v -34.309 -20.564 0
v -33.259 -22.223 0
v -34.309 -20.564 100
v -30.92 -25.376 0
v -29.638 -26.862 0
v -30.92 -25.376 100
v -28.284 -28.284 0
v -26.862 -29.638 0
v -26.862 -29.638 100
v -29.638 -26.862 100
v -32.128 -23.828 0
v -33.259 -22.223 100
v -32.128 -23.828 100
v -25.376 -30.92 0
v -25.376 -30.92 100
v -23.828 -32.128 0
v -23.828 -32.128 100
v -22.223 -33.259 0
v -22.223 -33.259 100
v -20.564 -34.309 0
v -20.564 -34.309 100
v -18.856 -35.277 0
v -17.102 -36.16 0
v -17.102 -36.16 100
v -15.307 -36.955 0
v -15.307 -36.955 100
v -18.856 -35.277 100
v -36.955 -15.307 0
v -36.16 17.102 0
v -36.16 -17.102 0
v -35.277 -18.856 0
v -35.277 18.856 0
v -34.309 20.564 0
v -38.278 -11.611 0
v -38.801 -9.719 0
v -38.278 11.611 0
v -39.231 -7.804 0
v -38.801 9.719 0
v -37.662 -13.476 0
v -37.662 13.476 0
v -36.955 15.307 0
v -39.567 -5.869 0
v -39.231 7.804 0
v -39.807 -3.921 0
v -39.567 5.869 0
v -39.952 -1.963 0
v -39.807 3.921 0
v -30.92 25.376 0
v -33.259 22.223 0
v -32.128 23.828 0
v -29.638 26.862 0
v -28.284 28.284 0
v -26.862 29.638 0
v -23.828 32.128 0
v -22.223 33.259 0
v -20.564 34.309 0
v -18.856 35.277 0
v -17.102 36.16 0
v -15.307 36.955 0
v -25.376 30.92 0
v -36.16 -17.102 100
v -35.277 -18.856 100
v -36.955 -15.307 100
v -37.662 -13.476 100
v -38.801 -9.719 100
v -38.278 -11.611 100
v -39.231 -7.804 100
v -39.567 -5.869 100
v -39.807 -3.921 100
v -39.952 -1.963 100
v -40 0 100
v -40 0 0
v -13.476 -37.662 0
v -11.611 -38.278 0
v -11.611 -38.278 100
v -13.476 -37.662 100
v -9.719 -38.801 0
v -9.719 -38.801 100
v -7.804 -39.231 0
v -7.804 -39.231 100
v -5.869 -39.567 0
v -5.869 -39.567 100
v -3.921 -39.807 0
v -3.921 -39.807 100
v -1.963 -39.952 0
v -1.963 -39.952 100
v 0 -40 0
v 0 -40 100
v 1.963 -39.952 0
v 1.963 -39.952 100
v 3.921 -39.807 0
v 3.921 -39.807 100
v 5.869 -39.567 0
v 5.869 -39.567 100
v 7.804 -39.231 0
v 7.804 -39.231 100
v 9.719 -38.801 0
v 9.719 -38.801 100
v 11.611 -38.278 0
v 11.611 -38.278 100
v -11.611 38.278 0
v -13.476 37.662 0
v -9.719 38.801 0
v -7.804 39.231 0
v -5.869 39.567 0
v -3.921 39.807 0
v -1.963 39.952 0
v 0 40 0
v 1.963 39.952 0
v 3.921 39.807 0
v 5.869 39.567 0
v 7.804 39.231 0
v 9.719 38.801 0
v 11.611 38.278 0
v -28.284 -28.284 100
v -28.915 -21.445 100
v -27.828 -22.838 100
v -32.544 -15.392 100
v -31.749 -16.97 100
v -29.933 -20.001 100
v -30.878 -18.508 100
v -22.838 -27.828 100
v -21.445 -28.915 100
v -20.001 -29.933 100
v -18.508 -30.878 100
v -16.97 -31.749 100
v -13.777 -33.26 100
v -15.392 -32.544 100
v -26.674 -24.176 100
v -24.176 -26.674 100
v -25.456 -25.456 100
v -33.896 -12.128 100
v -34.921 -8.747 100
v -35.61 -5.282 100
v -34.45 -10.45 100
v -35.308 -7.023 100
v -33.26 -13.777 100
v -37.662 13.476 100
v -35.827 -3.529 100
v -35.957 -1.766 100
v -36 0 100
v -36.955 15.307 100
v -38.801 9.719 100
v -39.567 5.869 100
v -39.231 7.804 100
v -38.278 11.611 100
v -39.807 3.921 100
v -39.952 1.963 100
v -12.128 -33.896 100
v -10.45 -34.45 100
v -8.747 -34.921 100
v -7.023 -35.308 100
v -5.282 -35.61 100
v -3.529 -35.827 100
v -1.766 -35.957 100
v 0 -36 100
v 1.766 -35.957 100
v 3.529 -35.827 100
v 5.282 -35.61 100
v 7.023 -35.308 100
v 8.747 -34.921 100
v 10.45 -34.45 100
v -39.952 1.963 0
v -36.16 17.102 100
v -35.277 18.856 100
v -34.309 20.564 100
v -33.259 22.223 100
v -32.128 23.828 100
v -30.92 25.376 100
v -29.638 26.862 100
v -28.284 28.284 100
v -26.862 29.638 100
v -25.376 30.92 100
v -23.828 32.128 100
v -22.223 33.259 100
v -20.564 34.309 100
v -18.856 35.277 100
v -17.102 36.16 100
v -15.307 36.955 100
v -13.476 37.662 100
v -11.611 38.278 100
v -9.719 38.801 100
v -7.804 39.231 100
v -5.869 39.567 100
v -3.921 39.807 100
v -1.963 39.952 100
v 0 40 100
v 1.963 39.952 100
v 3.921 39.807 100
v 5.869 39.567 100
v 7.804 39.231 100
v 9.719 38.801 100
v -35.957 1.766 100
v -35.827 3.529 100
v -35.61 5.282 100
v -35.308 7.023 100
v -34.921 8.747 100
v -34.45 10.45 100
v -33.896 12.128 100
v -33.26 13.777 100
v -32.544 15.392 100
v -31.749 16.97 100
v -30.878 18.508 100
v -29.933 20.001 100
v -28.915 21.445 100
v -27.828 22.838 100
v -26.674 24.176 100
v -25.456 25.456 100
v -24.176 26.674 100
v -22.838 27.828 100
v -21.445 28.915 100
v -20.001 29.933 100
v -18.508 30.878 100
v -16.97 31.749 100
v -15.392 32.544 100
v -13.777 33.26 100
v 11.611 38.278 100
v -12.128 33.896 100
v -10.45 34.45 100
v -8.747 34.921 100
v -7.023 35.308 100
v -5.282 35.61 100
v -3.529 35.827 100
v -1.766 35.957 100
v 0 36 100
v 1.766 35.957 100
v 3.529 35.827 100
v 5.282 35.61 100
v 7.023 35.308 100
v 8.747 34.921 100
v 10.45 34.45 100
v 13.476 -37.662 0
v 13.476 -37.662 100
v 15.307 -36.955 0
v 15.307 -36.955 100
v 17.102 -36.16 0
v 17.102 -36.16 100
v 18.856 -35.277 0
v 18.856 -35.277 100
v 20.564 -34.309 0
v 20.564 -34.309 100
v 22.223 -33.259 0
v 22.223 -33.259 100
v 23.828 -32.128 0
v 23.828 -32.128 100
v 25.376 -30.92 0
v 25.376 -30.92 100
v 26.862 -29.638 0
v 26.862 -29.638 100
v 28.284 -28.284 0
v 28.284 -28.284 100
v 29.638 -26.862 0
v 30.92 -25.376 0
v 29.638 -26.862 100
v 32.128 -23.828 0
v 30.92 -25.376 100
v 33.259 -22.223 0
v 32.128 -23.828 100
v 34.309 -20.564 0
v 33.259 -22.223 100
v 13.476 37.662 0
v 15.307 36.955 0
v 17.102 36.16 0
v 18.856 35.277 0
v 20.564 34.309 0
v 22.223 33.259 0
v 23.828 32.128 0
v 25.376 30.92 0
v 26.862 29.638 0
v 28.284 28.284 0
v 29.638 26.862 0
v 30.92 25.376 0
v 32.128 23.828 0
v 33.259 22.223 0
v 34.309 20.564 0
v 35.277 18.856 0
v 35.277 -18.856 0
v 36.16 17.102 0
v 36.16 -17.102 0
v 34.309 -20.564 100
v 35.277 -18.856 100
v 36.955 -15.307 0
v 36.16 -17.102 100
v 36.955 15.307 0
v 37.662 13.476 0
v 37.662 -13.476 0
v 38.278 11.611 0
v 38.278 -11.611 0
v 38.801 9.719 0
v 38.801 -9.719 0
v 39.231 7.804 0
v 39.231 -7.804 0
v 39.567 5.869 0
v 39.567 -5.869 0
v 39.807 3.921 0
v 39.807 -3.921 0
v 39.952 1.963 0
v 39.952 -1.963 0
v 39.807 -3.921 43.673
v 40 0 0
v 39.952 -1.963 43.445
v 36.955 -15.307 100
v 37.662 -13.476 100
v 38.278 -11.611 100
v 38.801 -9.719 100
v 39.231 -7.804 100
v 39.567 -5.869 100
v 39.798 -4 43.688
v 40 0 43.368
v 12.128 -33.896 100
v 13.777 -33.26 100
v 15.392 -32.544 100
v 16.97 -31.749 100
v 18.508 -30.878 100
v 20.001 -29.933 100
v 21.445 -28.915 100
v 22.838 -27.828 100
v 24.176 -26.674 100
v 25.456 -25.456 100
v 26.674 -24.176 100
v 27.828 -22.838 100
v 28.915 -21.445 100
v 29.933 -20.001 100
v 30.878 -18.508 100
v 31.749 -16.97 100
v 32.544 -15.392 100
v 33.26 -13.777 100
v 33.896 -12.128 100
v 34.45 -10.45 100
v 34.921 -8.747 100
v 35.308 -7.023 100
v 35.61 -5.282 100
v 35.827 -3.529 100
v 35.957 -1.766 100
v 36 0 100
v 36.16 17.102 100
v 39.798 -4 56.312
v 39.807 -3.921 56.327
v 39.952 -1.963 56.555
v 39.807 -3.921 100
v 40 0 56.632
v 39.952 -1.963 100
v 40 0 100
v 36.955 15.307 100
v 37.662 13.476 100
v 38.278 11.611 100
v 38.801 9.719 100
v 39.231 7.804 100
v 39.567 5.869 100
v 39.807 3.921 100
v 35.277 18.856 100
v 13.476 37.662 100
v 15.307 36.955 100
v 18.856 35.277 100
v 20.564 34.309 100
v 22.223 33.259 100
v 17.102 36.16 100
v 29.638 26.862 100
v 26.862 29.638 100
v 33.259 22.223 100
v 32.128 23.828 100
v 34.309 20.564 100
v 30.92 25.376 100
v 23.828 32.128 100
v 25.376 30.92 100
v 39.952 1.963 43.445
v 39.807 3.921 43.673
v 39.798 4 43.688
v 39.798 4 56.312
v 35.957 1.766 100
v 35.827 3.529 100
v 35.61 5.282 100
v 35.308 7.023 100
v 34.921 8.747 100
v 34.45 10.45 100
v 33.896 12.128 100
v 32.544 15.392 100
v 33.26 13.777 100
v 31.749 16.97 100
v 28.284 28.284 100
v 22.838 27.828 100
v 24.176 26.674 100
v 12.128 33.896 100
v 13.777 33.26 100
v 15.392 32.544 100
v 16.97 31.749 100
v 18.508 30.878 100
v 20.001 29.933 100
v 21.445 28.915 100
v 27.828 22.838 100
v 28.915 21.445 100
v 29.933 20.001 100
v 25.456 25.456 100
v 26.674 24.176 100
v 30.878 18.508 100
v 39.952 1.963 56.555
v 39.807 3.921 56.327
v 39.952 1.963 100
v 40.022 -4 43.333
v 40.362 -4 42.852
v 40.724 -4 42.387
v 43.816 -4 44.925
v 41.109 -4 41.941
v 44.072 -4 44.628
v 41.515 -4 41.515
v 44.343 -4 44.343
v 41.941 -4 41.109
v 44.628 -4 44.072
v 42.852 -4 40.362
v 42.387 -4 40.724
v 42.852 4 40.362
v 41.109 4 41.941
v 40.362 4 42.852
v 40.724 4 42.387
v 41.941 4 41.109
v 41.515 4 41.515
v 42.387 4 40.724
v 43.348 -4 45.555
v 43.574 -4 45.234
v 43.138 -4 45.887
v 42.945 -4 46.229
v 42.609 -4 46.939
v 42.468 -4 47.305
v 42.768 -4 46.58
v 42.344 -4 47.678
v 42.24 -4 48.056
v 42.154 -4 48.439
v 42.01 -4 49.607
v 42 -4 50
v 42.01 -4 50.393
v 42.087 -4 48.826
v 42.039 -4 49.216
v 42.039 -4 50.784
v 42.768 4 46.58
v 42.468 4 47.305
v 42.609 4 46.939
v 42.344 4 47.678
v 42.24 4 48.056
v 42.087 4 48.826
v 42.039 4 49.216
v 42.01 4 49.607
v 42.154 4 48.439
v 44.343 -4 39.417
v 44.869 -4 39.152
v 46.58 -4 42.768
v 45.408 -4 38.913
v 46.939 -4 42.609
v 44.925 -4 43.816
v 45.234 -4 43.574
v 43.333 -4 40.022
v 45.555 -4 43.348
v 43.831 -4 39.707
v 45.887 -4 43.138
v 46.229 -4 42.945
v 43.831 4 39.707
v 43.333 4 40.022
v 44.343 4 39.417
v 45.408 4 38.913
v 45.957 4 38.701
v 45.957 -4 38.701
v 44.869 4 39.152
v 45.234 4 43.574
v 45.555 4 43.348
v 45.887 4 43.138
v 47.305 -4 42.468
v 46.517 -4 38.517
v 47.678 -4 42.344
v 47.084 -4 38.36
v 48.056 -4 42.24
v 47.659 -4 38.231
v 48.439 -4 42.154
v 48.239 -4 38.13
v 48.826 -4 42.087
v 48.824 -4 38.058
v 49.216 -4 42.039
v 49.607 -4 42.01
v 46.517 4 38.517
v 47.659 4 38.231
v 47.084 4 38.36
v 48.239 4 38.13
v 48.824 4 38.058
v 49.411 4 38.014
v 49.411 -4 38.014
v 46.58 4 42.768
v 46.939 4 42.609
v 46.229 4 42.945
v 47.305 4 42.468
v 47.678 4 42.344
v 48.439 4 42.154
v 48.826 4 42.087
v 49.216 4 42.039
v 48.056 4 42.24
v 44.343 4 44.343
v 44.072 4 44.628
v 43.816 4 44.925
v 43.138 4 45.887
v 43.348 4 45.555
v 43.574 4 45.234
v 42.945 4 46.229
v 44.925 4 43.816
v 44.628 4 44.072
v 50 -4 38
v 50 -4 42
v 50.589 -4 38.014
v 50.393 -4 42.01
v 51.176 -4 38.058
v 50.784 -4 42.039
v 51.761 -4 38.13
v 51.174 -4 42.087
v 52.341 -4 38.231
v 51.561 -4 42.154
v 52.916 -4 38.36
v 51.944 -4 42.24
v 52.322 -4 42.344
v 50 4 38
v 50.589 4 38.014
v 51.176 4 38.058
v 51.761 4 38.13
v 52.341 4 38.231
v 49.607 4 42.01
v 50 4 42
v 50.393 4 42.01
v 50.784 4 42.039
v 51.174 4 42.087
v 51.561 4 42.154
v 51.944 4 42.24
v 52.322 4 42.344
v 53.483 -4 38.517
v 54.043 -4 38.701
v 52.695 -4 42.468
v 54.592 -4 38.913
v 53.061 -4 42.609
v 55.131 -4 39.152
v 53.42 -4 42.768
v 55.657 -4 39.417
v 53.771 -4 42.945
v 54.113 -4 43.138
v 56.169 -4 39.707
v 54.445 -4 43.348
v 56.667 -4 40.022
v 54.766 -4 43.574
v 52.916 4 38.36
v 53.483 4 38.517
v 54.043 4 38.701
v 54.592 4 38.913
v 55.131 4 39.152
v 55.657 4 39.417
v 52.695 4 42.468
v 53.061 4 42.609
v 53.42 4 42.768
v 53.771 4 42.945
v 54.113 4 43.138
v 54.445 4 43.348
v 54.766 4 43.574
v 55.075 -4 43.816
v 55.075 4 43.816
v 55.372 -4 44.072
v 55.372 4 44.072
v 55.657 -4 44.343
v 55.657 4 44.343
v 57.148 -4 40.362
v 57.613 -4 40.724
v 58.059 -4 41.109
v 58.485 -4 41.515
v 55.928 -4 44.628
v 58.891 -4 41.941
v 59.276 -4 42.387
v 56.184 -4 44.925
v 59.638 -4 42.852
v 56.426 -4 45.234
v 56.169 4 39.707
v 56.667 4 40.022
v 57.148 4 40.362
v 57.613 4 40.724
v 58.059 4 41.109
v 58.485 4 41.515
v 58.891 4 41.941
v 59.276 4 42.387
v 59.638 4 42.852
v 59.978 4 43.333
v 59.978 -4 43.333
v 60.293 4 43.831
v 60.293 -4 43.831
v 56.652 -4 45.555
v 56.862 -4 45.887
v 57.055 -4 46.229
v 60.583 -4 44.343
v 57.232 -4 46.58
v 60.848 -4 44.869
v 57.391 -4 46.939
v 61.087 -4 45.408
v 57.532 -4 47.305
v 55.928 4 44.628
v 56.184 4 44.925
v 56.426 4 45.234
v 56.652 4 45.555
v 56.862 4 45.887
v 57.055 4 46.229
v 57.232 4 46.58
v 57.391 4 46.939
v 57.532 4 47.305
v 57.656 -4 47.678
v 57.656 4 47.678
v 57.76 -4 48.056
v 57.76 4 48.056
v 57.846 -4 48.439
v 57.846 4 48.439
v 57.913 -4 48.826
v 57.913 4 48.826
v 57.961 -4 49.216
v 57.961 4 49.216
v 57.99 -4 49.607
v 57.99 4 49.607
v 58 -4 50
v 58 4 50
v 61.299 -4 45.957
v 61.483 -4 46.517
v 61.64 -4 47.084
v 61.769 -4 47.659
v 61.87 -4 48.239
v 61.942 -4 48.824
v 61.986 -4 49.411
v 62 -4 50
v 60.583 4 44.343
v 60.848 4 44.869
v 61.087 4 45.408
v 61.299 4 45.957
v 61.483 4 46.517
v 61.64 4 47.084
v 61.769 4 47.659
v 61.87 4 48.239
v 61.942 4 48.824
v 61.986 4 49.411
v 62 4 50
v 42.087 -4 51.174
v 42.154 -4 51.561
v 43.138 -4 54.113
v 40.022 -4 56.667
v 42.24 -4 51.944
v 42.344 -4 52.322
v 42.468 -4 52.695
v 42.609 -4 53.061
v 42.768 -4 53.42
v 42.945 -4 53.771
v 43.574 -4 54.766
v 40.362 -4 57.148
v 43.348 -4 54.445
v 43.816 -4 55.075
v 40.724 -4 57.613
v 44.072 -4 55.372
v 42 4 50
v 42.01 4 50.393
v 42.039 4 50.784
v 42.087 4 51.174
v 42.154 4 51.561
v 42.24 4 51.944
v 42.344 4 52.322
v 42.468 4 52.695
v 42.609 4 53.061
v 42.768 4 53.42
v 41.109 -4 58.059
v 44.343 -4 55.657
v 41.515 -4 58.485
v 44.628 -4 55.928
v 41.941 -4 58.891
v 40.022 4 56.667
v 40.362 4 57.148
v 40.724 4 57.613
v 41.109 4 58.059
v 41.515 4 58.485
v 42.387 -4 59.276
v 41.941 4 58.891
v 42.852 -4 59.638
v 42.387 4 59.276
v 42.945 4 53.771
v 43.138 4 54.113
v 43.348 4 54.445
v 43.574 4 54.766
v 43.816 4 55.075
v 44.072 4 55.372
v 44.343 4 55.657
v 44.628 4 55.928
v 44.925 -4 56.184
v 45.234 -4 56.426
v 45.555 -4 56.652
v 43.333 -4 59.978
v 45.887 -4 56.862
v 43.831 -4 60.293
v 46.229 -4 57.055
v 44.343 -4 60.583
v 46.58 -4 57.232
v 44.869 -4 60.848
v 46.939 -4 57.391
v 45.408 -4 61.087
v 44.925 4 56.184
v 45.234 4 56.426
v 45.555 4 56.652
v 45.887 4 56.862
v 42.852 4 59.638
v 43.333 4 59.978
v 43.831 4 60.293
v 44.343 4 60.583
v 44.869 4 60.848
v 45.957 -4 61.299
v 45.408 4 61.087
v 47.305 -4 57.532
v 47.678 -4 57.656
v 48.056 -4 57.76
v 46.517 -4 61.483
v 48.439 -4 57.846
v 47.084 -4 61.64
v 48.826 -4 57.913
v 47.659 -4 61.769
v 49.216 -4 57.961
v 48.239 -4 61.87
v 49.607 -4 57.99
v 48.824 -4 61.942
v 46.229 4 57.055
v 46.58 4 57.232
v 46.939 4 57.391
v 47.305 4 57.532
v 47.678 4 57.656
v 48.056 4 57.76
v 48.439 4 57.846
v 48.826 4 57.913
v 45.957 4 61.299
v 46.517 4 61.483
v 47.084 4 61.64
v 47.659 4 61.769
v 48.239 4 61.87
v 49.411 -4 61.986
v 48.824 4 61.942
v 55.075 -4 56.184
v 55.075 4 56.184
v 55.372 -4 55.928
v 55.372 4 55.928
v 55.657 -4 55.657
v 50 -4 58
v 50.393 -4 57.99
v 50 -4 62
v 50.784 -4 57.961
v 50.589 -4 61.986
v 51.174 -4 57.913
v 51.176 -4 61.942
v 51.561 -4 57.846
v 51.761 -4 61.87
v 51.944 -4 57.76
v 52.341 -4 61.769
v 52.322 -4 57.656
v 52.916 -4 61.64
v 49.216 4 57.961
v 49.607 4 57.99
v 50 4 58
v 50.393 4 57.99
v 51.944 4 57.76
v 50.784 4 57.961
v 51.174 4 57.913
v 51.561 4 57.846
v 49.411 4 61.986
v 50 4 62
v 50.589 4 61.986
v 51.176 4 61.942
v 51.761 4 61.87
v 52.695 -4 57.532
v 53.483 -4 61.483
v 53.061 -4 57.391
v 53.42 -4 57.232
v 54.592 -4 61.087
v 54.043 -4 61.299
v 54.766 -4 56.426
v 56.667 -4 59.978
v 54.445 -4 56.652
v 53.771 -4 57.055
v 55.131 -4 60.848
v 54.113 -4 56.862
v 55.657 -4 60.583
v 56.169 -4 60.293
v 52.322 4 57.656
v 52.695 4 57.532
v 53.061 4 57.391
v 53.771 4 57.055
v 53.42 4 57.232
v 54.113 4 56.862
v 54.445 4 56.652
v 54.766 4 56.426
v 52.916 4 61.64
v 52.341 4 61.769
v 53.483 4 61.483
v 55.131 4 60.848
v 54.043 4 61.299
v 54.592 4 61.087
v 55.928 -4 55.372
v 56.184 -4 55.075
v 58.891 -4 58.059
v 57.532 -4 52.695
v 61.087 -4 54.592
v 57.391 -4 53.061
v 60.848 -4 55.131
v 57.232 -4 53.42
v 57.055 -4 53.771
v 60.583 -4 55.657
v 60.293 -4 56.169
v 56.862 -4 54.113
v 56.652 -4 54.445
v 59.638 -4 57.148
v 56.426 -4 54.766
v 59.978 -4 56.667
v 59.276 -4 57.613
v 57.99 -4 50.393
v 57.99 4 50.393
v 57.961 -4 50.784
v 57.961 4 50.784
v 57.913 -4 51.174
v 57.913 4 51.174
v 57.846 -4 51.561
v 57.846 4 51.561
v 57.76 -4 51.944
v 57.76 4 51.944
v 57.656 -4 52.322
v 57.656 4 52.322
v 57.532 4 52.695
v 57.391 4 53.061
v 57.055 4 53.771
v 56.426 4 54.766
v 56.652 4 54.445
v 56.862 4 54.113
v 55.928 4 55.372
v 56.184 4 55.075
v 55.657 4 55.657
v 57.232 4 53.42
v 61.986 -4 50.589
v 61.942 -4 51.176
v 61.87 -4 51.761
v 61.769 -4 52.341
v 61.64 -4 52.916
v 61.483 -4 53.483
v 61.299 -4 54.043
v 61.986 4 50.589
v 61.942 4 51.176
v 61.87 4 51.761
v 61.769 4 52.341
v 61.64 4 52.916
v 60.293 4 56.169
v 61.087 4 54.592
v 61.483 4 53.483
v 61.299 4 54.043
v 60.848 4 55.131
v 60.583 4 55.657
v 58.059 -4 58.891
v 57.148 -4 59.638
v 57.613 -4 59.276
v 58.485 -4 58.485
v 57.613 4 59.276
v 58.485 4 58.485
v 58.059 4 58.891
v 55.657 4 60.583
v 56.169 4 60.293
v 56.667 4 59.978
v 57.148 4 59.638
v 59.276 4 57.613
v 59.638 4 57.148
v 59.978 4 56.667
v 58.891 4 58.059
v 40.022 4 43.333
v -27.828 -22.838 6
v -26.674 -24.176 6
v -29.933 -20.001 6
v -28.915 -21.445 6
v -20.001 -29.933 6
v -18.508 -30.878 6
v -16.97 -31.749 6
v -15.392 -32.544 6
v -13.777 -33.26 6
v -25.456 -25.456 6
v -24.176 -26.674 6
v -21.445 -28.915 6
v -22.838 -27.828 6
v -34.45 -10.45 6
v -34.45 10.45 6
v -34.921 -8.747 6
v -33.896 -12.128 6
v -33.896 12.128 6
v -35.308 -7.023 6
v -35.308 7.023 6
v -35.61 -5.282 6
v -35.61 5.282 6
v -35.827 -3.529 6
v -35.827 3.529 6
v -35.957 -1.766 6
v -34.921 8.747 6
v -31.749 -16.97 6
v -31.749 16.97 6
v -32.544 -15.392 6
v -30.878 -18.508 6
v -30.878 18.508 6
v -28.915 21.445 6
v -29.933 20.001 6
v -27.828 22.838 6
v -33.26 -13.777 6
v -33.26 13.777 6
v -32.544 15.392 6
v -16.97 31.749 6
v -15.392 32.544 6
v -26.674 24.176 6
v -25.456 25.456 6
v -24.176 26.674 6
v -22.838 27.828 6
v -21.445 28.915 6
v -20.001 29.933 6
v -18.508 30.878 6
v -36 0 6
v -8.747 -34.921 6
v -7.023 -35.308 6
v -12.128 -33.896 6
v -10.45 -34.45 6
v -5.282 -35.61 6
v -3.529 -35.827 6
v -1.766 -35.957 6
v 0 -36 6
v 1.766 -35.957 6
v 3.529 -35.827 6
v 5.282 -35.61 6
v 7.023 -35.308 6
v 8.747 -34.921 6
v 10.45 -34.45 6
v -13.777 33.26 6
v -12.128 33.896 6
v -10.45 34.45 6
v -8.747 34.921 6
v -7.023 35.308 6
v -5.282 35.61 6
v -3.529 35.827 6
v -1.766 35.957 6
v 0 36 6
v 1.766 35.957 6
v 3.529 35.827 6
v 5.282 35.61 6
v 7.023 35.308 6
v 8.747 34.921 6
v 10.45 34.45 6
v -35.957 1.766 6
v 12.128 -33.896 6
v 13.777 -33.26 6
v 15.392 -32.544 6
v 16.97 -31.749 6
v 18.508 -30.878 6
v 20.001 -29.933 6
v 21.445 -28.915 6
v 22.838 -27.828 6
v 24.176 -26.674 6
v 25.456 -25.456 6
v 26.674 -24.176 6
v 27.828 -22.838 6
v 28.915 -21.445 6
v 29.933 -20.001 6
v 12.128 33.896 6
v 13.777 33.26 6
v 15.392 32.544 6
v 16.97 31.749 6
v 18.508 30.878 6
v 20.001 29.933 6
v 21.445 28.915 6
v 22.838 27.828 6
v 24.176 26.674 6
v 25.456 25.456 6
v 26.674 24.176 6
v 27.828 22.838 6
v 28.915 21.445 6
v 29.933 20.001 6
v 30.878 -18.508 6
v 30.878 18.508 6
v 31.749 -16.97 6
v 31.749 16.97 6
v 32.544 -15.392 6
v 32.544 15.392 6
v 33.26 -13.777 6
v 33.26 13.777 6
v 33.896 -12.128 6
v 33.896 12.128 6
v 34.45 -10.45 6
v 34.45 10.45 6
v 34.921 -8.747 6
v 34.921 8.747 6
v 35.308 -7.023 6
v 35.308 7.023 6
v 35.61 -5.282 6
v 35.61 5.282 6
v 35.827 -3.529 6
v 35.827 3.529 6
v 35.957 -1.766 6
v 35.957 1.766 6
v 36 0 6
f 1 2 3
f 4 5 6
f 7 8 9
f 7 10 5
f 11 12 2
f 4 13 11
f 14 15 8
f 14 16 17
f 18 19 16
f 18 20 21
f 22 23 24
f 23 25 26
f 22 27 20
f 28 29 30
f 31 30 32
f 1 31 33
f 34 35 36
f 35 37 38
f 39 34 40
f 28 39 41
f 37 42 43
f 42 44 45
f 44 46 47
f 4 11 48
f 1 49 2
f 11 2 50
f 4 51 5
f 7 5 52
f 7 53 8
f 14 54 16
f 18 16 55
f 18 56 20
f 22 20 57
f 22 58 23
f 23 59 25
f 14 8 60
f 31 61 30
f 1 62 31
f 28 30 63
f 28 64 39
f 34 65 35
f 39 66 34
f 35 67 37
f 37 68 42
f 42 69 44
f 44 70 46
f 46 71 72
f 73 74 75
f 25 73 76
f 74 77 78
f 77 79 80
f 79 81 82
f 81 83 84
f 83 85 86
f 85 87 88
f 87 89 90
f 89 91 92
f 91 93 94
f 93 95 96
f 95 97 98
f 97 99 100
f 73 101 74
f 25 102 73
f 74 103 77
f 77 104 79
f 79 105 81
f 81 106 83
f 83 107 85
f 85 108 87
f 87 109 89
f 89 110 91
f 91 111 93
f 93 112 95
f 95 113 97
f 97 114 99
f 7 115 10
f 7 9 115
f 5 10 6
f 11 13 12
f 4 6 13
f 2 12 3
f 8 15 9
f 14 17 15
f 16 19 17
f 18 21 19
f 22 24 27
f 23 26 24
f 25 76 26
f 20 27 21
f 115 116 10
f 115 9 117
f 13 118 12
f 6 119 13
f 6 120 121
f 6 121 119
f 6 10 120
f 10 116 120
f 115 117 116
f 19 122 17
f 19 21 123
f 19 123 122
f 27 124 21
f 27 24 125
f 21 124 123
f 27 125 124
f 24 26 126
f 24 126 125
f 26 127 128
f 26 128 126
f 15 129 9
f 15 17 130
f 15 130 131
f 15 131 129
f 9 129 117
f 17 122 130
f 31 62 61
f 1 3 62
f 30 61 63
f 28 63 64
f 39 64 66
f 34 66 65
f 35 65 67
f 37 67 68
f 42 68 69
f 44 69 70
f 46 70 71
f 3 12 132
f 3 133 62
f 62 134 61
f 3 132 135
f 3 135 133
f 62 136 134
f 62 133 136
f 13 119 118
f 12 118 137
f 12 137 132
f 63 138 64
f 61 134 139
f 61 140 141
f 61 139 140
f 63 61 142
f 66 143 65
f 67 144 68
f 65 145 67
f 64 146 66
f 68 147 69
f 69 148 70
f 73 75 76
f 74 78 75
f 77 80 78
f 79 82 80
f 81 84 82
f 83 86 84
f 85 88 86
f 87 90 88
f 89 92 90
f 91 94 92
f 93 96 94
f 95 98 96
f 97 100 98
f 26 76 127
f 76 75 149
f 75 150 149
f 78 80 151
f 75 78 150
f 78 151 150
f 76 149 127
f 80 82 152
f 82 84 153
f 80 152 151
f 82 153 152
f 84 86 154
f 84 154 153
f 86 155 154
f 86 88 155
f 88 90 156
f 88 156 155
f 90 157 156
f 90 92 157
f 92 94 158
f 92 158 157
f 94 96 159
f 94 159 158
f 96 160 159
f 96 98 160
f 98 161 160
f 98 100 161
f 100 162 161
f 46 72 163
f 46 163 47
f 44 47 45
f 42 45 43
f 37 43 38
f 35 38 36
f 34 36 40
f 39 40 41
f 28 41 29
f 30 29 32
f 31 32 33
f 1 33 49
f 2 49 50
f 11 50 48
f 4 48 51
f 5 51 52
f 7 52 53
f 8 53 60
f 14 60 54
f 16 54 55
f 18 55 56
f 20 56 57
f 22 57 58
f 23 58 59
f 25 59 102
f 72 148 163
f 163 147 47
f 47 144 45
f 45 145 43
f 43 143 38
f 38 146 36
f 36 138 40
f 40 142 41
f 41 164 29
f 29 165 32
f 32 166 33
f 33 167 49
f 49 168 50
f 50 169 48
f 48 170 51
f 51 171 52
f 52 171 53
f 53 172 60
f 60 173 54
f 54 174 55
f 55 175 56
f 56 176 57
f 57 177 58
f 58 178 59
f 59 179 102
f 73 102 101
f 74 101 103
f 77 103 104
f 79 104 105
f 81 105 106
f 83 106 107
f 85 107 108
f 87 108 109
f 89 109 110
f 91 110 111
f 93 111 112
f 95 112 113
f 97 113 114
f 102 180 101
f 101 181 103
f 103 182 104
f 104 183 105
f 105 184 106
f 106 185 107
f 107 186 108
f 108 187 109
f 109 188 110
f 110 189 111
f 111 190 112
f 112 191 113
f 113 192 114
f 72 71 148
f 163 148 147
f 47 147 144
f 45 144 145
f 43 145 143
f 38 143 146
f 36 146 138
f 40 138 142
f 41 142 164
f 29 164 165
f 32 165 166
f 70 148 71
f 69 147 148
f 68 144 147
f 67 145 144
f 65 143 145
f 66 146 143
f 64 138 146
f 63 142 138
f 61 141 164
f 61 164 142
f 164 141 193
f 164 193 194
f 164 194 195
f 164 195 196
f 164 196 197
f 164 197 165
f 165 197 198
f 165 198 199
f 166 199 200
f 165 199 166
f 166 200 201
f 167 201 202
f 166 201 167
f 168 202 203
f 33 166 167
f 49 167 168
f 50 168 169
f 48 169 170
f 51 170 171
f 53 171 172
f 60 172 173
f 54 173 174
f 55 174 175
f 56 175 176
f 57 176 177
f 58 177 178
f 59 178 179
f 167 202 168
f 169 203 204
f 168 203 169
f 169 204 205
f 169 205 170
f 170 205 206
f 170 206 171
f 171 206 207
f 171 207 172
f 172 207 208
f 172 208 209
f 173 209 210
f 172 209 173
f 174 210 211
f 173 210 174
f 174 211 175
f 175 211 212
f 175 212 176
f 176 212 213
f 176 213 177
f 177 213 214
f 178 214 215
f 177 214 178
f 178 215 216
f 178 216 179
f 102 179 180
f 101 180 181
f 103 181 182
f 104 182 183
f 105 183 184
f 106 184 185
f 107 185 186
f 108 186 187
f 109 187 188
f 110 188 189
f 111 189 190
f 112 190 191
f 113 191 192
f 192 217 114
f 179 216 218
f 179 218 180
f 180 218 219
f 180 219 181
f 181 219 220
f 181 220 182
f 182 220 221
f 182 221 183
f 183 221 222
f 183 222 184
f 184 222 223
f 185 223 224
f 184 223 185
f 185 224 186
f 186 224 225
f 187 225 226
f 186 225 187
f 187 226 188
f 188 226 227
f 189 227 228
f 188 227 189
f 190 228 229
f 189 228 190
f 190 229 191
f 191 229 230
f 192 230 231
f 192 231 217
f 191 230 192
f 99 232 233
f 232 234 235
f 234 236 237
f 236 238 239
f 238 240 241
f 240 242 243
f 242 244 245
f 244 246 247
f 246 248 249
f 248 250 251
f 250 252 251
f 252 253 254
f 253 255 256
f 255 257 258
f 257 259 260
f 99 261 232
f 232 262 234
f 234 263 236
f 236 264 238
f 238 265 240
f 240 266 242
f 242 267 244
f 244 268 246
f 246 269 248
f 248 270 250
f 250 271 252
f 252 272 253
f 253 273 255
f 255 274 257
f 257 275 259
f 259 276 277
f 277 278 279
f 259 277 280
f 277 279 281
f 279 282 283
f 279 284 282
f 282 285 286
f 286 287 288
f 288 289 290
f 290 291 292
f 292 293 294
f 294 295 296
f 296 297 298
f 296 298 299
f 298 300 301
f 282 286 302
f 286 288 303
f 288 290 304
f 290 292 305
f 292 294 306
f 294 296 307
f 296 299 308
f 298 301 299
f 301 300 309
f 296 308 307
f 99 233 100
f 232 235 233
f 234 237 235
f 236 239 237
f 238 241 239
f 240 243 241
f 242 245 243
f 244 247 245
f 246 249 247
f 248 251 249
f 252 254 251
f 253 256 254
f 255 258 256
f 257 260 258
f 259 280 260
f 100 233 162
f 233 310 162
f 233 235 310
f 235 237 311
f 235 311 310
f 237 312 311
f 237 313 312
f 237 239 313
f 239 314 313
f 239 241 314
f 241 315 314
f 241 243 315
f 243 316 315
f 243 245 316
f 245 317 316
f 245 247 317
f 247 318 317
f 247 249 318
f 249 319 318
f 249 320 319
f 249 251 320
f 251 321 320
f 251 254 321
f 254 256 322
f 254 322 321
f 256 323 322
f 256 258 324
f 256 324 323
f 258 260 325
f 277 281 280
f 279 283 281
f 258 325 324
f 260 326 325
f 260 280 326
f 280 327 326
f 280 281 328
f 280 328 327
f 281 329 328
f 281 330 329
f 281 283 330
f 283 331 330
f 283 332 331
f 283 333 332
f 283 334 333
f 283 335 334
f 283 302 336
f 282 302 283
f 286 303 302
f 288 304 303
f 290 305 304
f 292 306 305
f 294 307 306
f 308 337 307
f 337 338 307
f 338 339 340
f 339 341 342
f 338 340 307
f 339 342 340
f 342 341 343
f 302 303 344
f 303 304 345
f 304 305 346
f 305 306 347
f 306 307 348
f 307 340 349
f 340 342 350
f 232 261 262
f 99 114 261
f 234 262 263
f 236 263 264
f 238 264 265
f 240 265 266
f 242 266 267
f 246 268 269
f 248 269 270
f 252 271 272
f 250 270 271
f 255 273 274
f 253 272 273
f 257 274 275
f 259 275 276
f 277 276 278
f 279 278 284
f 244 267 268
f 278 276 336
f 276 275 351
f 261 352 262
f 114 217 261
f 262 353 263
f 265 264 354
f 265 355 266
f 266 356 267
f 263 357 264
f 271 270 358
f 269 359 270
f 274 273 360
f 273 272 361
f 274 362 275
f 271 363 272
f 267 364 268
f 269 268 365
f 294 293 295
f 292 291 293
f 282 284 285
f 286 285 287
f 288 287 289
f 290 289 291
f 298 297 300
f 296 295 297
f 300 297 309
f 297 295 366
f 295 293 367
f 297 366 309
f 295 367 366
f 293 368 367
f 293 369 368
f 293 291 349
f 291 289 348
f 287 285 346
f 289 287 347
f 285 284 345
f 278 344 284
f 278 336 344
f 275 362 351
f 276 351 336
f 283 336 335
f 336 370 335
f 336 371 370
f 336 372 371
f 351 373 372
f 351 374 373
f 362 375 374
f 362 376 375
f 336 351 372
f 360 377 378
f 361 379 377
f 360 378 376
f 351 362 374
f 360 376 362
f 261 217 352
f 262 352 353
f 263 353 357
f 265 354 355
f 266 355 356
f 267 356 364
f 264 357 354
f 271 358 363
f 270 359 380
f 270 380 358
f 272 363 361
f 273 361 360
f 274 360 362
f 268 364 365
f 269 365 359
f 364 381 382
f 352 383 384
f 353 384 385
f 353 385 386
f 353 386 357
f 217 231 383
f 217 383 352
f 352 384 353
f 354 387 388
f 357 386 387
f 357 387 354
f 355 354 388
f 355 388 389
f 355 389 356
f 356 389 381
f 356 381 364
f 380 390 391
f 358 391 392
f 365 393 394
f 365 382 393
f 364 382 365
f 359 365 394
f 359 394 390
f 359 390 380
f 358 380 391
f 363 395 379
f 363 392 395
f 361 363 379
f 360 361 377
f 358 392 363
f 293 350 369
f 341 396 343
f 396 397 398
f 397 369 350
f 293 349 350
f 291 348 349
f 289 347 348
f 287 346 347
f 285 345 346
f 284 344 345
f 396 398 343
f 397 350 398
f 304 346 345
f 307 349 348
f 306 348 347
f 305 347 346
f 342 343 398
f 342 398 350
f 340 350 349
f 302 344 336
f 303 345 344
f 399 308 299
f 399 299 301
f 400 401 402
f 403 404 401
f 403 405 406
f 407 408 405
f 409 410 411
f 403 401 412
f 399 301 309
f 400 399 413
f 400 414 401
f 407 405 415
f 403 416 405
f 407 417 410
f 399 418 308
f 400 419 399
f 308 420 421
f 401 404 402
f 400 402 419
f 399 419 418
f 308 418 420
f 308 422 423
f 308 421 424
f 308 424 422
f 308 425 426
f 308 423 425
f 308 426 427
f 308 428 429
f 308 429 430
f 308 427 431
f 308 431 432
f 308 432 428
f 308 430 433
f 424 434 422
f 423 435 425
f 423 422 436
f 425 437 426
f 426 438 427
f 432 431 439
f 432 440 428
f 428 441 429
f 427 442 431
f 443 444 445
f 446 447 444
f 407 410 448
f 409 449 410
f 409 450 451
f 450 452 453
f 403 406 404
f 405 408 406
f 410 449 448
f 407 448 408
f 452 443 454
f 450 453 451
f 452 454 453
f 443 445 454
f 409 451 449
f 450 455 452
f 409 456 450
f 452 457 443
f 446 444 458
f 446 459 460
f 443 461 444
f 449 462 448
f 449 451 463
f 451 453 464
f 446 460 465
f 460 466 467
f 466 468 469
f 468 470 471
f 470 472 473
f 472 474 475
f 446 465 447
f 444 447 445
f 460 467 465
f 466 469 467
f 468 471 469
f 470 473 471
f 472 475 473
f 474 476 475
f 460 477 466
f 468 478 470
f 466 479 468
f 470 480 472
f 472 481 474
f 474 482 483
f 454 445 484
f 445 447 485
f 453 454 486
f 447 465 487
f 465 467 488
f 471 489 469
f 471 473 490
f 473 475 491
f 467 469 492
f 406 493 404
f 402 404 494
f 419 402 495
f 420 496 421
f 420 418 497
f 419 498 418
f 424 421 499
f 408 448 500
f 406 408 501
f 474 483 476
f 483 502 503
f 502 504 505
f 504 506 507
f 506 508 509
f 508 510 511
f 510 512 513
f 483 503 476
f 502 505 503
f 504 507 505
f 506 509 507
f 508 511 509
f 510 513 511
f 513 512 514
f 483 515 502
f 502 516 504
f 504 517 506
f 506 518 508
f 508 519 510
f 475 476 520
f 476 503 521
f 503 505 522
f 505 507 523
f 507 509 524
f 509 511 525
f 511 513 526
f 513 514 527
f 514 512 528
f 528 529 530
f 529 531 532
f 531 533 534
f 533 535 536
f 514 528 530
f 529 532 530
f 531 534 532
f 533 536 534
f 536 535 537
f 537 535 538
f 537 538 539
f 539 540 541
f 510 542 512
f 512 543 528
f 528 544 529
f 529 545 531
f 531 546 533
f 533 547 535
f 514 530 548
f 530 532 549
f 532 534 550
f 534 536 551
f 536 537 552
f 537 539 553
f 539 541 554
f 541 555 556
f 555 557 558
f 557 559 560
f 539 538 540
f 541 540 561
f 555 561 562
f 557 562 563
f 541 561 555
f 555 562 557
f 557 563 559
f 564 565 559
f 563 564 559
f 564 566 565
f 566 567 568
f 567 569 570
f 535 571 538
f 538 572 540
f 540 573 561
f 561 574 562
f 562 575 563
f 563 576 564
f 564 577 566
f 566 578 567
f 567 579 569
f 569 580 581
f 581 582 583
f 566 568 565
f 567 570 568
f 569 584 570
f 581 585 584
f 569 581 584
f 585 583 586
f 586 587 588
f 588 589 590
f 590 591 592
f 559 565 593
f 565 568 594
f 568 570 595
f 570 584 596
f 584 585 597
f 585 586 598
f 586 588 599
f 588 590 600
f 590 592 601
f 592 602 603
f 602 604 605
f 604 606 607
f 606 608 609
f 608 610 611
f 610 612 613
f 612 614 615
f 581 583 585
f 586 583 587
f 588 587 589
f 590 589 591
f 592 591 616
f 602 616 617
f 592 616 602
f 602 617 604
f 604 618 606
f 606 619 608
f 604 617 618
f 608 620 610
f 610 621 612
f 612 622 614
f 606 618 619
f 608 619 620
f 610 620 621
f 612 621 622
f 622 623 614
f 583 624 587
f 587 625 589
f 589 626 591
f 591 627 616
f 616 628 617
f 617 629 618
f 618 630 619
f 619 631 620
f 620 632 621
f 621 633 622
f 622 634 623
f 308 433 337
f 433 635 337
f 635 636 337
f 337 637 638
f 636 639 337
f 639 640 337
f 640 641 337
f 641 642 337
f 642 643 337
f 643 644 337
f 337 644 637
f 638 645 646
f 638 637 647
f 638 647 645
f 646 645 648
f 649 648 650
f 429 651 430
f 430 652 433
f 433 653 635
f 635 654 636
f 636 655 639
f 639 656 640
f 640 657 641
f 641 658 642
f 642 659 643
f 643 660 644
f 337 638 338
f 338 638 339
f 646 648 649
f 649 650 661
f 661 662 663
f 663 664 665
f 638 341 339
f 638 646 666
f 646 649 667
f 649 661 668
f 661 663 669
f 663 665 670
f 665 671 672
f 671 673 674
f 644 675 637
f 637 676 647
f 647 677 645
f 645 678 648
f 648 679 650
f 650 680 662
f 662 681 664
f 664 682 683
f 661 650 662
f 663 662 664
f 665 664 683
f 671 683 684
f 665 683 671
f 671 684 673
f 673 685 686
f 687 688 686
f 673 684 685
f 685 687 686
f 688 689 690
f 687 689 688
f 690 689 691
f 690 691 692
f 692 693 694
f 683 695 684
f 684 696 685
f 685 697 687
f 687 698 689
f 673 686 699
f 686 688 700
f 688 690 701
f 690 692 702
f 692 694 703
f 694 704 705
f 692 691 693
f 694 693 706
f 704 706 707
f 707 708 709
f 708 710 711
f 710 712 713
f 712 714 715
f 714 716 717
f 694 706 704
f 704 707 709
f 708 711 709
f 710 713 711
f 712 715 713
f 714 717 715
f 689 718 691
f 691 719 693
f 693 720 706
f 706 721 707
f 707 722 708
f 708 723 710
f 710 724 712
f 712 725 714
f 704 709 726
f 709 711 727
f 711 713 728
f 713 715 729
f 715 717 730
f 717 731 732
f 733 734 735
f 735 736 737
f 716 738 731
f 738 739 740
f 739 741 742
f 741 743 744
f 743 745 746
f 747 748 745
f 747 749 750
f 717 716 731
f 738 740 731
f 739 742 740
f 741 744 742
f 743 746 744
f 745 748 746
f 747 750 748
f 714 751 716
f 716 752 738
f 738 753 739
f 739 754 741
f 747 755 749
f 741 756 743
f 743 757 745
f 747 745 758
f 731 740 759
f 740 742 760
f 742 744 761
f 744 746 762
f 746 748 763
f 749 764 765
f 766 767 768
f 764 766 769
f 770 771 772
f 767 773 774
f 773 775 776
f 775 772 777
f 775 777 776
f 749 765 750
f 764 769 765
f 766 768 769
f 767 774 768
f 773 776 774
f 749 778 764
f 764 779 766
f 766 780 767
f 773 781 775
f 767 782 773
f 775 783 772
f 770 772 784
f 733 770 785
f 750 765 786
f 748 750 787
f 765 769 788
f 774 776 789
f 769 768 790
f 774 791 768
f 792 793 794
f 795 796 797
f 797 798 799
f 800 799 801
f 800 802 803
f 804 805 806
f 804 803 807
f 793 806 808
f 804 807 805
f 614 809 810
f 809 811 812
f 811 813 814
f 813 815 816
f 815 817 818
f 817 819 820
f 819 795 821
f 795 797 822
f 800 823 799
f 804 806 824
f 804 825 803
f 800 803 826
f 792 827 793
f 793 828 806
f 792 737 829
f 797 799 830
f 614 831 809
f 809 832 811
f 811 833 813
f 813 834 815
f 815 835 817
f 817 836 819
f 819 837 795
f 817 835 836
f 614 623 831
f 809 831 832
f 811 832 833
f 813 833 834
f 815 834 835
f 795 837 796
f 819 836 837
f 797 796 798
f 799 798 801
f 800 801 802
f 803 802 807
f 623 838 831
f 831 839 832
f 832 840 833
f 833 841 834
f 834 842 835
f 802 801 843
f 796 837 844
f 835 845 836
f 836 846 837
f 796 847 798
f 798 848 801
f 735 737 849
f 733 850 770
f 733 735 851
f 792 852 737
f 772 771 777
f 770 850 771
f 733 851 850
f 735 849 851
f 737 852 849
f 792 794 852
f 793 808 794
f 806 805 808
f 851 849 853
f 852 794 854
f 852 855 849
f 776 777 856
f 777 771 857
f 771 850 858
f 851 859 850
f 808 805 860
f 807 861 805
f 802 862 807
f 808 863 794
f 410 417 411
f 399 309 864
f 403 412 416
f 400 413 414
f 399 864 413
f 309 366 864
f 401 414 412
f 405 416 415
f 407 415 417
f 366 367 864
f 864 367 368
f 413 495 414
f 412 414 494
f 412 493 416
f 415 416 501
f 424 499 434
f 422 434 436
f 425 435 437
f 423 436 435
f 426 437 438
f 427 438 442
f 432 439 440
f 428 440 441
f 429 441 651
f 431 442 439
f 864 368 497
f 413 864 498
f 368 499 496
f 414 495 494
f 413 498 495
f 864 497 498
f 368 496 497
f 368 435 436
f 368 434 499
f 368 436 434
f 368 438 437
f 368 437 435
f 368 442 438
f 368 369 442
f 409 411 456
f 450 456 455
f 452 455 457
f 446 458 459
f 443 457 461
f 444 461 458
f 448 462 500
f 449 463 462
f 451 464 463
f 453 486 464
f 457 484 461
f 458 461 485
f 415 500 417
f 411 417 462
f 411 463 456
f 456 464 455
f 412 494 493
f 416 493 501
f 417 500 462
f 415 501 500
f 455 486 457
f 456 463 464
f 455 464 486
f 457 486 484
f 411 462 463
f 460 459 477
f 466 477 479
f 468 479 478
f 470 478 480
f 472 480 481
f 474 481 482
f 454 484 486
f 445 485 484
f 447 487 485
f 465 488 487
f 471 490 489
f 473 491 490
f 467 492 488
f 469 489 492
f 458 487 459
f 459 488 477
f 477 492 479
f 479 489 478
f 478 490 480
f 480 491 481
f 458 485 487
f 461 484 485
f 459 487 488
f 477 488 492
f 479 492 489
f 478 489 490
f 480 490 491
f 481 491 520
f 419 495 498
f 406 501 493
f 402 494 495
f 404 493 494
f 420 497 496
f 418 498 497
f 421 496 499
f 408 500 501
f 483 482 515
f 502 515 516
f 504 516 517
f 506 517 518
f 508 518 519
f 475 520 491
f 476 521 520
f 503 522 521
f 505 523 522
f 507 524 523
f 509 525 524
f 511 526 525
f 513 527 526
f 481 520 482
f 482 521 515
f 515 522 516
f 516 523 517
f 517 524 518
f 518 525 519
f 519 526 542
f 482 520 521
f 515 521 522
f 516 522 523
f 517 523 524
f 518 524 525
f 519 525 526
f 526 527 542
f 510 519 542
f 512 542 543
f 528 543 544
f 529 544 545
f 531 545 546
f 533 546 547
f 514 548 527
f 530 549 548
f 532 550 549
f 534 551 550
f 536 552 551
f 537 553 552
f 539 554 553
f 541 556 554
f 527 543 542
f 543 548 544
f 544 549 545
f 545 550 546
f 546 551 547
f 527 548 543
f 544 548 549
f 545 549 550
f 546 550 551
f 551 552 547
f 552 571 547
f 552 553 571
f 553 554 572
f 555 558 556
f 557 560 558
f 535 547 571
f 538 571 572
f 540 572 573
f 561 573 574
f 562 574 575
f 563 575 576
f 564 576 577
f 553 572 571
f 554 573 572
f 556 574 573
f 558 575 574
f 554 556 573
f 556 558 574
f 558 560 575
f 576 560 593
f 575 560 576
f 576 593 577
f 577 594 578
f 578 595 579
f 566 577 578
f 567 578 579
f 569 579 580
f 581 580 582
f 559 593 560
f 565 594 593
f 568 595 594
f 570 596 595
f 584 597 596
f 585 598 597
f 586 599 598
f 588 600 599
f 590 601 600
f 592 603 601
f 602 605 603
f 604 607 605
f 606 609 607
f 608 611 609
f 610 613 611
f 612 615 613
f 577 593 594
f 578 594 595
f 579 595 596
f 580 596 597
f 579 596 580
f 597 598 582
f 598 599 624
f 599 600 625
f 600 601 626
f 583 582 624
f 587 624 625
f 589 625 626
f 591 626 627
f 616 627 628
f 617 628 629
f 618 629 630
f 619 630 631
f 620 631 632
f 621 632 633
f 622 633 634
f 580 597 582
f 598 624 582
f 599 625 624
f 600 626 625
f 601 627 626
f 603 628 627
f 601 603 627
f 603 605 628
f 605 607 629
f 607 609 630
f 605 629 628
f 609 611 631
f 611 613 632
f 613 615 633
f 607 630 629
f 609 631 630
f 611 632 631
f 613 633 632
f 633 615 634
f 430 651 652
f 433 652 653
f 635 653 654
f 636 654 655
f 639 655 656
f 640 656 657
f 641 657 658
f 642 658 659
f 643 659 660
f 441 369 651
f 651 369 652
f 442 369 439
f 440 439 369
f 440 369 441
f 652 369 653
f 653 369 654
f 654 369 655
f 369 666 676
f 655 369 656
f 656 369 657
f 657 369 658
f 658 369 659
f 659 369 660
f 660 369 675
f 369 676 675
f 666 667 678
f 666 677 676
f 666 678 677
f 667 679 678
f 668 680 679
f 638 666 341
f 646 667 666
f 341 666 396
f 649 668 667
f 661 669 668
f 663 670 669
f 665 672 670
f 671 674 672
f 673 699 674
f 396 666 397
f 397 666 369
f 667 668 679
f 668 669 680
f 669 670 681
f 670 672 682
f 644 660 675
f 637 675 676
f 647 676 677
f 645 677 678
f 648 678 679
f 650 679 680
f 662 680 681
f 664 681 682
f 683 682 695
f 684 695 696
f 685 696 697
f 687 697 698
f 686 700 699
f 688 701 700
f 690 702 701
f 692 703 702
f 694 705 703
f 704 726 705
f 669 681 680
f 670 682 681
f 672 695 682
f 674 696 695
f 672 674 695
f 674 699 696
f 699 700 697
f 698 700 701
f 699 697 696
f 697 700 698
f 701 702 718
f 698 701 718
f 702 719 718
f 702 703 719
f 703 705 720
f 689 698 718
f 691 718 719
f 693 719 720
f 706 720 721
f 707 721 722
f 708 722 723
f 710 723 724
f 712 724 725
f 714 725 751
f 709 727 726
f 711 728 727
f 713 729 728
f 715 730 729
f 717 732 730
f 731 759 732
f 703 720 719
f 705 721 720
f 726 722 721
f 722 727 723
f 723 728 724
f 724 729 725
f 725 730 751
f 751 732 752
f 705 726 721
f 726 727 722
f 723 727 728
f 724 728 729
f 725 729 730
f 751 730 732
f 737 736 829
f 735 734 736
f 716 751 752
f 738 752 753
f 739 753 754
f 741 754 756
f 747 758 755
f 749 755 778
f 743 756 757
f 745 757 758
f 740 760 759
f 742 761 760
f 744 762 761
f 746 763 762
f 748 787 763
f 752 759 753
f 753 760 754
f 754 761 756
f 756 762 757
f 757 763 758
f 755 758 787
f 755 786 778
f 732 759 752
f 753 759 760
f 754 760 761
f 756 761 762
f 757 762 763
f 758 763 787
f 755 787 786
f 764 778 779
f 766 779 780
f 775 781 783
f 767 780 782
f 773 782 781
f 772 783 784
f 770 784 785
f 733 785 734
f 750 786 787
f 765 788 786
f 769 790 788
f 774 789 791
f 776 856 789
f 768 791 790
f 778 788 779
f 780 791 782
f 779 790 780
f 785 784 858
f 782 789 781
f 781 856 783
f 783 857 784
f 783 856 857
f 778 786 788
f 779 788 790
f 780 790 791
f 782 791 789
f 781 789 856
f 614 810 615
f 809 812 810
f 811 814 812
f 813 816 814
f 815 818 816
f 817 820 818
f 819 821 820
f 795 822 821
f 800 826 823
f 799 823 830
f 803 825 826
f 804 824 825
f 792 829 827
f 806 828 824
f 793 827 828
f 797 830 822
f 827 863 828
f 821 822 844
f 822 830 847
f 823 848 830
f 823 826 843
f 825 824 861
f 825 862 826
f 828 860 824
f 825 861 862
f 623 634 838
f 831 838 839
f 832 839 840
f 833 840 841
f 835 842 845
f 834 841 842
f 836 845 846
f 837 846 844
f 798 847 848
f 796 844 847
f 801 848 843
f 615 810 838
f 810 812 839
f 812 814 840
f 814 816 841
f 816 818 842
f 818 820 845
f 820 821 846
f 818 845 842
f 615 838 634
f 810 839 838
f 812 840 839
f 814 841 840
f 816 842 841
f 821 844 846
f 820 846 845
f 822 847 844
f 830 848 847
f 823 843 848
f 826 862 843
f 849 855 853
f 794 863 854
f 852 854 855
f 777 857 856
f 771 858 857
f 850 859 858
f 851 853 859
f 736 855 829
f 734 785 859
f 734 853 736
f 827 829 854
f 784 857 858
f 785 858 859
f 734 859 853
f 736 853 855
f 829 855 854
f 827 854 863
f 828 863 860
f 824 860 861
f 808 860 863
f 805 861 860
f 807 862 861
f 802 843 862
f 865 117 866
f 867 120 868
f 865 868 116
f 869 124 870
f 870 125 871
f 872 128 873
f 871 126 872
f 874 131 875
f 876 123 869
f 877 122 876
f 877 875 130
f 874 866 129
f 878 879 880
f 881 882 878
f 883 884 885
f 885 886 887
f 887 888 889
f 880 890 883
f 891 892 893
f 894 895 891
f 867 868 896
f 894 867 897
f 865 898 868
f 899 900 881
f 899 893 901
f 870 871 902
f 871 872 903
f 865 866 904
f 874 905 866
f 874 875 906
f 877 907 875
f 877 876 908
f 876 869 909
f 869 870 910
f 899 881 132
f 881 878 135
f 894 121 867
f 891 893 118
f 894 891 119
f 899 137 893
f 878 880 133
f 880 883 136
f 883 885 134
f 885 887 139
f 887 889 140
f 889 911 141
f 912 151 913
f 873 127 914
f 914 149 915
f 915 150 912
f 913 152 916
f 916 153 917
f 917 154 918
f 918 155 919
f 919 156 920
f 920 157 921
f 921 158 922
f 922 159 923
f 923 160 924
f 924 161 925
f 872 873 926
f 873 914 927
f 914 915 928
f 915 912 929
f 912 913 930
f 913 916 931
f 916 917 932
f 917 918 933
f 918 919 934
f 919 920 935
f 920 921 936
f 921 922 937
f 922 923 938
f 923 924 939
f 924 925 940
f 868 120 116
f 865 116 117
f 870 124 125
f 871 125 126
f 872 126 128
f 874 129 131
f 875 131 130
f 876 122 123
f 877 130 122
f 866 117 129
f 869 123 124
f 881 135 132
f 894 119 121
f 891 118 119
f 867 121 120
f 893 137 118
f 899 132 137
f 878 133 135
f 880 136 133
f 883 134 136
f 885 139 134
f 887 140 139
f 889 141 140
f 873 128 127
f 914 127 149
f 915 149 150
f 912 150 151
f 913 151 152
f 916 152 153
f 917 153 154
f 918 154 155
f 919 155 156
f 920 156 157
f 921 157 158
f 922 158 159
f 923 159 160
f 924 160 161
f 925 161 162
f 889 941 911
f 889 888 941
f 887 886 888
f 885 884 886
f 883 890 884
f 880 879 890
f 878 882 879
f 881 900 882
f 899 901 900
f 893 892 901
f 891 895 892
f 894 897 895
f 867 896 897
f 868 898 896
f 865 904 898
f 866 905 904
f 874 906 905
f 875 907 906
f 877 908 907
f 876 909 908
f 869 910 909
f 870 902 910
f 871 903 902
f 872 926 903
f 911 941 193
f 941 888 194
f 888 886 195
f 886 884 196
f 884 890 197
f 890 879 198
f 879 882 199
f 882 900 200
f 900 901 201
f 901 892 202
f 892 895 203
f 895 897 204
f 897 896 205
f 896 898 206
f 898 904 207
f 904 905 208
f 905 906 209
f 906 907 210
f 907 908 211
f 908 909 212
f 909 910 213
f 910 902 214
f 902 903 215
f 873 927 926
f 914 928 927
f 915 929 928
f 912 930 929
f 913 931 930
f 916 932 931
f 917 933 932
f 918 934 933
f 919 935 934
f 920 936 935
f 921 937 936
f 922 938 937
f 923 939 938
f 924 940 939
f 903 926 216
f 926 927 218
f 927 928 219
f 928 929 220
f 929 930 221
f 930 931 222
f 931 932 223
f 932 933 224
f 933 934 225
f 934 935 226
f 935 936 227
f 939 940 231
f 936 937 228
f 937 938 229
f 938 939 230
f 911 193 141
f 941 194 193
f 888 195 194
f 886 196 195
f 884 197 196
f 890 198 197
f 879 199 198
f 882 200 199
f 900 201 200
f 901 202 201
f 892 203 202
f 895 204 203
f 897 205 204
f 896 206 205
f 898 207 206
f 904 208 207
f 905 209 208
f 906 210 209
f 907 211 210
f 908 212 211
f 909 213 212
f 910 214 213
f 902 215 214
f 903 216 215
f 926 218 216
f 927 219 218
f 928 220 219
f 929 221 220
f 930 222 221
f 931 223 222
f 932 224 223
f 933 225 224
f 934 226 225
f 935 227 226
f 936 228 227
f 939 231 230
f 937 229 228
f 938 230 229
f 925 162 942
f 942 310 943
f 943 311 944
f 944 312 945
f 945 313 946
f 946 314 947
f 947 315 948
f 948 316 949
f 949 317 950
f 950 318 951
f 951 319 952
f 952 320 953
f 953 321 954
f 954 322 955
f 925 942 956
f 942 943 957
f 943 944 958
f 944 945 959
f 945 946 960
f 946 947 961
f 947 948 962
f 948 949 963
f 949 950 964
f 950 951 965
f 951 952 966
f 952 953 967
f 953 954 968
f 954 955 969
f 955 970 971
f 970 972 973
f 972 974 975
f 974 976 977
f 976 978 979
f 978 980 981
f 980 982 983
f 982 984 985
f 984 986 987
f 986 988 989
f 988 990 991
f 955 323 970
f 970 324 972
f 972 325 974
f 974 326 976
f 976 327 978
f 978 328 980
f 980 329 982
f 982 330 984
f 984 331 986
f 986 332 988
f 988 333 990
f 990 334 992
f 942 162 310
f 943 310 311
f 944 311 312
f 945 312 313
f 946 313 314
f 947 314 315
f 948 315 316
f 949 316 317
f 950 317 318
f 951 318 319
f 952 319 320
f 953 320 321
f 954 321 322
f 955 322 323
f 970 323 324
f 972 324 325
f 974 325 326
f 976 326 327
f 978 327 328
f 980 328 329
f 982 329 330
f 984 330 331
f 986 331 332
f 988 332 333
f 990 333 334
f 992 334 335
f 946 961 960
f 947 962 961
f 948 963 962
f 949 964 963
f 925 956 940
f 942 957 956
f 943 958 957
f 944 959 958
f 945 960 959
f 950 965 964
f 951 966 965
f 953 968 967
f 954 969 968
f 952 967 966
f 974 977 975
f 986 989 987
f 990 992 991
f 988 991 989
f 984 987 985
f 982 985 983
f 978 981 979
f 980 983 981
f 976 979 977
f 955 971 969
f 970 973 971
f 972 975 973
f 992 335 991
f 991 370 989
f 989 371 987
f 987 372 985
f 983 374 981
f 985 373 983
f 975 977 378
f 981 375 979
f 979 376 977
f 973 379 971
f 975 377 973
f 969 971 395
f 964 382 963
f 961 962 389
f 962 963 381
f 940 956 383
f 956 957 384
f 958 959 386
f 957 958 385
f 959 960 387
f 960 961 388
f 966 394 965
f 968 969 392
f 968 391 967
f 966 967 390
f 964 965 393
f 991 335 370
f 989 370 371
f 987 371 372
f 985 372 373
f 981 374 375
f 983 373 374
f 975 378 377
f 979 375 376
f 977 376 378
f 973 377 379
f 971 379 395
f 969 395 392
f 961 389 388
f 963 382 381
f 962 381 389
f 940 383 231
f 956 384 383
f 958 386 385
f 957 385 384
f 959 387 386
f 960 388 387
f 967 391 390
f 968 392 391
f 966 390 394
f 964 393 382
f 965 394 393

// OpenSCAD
$fn = 128;

outer_diameter = 80;
cup_height     = 100;
wall_thickness = 4;
bottom_thickness = 6;

handle_outer_radius = 12;
handle_inner_radius = 8;
handle_depth = 8;
handle_overlap = 2;

difference() {
    union() {
        cylinder(d = outer_diameter, h = cup_height);

        translate([
            outer_diameter / 2 + handle_outer_radius - handle_overlap,
            0,
            cup_height / 2
        ])
        rotate([90, 0, 0])
        linear_extrude(height = handle_depth, center = true)
        difference() {
            circle(r = handle_outer_radius);
            circle(r = handle_inner_radius);
        }
    }

    translate([0, 0, bottom_thickness])
    cylinder(
        d = outer_diameter - 2 * wall_thickness,
        h = cup_height - bottom_thickness + 1
    );
}
